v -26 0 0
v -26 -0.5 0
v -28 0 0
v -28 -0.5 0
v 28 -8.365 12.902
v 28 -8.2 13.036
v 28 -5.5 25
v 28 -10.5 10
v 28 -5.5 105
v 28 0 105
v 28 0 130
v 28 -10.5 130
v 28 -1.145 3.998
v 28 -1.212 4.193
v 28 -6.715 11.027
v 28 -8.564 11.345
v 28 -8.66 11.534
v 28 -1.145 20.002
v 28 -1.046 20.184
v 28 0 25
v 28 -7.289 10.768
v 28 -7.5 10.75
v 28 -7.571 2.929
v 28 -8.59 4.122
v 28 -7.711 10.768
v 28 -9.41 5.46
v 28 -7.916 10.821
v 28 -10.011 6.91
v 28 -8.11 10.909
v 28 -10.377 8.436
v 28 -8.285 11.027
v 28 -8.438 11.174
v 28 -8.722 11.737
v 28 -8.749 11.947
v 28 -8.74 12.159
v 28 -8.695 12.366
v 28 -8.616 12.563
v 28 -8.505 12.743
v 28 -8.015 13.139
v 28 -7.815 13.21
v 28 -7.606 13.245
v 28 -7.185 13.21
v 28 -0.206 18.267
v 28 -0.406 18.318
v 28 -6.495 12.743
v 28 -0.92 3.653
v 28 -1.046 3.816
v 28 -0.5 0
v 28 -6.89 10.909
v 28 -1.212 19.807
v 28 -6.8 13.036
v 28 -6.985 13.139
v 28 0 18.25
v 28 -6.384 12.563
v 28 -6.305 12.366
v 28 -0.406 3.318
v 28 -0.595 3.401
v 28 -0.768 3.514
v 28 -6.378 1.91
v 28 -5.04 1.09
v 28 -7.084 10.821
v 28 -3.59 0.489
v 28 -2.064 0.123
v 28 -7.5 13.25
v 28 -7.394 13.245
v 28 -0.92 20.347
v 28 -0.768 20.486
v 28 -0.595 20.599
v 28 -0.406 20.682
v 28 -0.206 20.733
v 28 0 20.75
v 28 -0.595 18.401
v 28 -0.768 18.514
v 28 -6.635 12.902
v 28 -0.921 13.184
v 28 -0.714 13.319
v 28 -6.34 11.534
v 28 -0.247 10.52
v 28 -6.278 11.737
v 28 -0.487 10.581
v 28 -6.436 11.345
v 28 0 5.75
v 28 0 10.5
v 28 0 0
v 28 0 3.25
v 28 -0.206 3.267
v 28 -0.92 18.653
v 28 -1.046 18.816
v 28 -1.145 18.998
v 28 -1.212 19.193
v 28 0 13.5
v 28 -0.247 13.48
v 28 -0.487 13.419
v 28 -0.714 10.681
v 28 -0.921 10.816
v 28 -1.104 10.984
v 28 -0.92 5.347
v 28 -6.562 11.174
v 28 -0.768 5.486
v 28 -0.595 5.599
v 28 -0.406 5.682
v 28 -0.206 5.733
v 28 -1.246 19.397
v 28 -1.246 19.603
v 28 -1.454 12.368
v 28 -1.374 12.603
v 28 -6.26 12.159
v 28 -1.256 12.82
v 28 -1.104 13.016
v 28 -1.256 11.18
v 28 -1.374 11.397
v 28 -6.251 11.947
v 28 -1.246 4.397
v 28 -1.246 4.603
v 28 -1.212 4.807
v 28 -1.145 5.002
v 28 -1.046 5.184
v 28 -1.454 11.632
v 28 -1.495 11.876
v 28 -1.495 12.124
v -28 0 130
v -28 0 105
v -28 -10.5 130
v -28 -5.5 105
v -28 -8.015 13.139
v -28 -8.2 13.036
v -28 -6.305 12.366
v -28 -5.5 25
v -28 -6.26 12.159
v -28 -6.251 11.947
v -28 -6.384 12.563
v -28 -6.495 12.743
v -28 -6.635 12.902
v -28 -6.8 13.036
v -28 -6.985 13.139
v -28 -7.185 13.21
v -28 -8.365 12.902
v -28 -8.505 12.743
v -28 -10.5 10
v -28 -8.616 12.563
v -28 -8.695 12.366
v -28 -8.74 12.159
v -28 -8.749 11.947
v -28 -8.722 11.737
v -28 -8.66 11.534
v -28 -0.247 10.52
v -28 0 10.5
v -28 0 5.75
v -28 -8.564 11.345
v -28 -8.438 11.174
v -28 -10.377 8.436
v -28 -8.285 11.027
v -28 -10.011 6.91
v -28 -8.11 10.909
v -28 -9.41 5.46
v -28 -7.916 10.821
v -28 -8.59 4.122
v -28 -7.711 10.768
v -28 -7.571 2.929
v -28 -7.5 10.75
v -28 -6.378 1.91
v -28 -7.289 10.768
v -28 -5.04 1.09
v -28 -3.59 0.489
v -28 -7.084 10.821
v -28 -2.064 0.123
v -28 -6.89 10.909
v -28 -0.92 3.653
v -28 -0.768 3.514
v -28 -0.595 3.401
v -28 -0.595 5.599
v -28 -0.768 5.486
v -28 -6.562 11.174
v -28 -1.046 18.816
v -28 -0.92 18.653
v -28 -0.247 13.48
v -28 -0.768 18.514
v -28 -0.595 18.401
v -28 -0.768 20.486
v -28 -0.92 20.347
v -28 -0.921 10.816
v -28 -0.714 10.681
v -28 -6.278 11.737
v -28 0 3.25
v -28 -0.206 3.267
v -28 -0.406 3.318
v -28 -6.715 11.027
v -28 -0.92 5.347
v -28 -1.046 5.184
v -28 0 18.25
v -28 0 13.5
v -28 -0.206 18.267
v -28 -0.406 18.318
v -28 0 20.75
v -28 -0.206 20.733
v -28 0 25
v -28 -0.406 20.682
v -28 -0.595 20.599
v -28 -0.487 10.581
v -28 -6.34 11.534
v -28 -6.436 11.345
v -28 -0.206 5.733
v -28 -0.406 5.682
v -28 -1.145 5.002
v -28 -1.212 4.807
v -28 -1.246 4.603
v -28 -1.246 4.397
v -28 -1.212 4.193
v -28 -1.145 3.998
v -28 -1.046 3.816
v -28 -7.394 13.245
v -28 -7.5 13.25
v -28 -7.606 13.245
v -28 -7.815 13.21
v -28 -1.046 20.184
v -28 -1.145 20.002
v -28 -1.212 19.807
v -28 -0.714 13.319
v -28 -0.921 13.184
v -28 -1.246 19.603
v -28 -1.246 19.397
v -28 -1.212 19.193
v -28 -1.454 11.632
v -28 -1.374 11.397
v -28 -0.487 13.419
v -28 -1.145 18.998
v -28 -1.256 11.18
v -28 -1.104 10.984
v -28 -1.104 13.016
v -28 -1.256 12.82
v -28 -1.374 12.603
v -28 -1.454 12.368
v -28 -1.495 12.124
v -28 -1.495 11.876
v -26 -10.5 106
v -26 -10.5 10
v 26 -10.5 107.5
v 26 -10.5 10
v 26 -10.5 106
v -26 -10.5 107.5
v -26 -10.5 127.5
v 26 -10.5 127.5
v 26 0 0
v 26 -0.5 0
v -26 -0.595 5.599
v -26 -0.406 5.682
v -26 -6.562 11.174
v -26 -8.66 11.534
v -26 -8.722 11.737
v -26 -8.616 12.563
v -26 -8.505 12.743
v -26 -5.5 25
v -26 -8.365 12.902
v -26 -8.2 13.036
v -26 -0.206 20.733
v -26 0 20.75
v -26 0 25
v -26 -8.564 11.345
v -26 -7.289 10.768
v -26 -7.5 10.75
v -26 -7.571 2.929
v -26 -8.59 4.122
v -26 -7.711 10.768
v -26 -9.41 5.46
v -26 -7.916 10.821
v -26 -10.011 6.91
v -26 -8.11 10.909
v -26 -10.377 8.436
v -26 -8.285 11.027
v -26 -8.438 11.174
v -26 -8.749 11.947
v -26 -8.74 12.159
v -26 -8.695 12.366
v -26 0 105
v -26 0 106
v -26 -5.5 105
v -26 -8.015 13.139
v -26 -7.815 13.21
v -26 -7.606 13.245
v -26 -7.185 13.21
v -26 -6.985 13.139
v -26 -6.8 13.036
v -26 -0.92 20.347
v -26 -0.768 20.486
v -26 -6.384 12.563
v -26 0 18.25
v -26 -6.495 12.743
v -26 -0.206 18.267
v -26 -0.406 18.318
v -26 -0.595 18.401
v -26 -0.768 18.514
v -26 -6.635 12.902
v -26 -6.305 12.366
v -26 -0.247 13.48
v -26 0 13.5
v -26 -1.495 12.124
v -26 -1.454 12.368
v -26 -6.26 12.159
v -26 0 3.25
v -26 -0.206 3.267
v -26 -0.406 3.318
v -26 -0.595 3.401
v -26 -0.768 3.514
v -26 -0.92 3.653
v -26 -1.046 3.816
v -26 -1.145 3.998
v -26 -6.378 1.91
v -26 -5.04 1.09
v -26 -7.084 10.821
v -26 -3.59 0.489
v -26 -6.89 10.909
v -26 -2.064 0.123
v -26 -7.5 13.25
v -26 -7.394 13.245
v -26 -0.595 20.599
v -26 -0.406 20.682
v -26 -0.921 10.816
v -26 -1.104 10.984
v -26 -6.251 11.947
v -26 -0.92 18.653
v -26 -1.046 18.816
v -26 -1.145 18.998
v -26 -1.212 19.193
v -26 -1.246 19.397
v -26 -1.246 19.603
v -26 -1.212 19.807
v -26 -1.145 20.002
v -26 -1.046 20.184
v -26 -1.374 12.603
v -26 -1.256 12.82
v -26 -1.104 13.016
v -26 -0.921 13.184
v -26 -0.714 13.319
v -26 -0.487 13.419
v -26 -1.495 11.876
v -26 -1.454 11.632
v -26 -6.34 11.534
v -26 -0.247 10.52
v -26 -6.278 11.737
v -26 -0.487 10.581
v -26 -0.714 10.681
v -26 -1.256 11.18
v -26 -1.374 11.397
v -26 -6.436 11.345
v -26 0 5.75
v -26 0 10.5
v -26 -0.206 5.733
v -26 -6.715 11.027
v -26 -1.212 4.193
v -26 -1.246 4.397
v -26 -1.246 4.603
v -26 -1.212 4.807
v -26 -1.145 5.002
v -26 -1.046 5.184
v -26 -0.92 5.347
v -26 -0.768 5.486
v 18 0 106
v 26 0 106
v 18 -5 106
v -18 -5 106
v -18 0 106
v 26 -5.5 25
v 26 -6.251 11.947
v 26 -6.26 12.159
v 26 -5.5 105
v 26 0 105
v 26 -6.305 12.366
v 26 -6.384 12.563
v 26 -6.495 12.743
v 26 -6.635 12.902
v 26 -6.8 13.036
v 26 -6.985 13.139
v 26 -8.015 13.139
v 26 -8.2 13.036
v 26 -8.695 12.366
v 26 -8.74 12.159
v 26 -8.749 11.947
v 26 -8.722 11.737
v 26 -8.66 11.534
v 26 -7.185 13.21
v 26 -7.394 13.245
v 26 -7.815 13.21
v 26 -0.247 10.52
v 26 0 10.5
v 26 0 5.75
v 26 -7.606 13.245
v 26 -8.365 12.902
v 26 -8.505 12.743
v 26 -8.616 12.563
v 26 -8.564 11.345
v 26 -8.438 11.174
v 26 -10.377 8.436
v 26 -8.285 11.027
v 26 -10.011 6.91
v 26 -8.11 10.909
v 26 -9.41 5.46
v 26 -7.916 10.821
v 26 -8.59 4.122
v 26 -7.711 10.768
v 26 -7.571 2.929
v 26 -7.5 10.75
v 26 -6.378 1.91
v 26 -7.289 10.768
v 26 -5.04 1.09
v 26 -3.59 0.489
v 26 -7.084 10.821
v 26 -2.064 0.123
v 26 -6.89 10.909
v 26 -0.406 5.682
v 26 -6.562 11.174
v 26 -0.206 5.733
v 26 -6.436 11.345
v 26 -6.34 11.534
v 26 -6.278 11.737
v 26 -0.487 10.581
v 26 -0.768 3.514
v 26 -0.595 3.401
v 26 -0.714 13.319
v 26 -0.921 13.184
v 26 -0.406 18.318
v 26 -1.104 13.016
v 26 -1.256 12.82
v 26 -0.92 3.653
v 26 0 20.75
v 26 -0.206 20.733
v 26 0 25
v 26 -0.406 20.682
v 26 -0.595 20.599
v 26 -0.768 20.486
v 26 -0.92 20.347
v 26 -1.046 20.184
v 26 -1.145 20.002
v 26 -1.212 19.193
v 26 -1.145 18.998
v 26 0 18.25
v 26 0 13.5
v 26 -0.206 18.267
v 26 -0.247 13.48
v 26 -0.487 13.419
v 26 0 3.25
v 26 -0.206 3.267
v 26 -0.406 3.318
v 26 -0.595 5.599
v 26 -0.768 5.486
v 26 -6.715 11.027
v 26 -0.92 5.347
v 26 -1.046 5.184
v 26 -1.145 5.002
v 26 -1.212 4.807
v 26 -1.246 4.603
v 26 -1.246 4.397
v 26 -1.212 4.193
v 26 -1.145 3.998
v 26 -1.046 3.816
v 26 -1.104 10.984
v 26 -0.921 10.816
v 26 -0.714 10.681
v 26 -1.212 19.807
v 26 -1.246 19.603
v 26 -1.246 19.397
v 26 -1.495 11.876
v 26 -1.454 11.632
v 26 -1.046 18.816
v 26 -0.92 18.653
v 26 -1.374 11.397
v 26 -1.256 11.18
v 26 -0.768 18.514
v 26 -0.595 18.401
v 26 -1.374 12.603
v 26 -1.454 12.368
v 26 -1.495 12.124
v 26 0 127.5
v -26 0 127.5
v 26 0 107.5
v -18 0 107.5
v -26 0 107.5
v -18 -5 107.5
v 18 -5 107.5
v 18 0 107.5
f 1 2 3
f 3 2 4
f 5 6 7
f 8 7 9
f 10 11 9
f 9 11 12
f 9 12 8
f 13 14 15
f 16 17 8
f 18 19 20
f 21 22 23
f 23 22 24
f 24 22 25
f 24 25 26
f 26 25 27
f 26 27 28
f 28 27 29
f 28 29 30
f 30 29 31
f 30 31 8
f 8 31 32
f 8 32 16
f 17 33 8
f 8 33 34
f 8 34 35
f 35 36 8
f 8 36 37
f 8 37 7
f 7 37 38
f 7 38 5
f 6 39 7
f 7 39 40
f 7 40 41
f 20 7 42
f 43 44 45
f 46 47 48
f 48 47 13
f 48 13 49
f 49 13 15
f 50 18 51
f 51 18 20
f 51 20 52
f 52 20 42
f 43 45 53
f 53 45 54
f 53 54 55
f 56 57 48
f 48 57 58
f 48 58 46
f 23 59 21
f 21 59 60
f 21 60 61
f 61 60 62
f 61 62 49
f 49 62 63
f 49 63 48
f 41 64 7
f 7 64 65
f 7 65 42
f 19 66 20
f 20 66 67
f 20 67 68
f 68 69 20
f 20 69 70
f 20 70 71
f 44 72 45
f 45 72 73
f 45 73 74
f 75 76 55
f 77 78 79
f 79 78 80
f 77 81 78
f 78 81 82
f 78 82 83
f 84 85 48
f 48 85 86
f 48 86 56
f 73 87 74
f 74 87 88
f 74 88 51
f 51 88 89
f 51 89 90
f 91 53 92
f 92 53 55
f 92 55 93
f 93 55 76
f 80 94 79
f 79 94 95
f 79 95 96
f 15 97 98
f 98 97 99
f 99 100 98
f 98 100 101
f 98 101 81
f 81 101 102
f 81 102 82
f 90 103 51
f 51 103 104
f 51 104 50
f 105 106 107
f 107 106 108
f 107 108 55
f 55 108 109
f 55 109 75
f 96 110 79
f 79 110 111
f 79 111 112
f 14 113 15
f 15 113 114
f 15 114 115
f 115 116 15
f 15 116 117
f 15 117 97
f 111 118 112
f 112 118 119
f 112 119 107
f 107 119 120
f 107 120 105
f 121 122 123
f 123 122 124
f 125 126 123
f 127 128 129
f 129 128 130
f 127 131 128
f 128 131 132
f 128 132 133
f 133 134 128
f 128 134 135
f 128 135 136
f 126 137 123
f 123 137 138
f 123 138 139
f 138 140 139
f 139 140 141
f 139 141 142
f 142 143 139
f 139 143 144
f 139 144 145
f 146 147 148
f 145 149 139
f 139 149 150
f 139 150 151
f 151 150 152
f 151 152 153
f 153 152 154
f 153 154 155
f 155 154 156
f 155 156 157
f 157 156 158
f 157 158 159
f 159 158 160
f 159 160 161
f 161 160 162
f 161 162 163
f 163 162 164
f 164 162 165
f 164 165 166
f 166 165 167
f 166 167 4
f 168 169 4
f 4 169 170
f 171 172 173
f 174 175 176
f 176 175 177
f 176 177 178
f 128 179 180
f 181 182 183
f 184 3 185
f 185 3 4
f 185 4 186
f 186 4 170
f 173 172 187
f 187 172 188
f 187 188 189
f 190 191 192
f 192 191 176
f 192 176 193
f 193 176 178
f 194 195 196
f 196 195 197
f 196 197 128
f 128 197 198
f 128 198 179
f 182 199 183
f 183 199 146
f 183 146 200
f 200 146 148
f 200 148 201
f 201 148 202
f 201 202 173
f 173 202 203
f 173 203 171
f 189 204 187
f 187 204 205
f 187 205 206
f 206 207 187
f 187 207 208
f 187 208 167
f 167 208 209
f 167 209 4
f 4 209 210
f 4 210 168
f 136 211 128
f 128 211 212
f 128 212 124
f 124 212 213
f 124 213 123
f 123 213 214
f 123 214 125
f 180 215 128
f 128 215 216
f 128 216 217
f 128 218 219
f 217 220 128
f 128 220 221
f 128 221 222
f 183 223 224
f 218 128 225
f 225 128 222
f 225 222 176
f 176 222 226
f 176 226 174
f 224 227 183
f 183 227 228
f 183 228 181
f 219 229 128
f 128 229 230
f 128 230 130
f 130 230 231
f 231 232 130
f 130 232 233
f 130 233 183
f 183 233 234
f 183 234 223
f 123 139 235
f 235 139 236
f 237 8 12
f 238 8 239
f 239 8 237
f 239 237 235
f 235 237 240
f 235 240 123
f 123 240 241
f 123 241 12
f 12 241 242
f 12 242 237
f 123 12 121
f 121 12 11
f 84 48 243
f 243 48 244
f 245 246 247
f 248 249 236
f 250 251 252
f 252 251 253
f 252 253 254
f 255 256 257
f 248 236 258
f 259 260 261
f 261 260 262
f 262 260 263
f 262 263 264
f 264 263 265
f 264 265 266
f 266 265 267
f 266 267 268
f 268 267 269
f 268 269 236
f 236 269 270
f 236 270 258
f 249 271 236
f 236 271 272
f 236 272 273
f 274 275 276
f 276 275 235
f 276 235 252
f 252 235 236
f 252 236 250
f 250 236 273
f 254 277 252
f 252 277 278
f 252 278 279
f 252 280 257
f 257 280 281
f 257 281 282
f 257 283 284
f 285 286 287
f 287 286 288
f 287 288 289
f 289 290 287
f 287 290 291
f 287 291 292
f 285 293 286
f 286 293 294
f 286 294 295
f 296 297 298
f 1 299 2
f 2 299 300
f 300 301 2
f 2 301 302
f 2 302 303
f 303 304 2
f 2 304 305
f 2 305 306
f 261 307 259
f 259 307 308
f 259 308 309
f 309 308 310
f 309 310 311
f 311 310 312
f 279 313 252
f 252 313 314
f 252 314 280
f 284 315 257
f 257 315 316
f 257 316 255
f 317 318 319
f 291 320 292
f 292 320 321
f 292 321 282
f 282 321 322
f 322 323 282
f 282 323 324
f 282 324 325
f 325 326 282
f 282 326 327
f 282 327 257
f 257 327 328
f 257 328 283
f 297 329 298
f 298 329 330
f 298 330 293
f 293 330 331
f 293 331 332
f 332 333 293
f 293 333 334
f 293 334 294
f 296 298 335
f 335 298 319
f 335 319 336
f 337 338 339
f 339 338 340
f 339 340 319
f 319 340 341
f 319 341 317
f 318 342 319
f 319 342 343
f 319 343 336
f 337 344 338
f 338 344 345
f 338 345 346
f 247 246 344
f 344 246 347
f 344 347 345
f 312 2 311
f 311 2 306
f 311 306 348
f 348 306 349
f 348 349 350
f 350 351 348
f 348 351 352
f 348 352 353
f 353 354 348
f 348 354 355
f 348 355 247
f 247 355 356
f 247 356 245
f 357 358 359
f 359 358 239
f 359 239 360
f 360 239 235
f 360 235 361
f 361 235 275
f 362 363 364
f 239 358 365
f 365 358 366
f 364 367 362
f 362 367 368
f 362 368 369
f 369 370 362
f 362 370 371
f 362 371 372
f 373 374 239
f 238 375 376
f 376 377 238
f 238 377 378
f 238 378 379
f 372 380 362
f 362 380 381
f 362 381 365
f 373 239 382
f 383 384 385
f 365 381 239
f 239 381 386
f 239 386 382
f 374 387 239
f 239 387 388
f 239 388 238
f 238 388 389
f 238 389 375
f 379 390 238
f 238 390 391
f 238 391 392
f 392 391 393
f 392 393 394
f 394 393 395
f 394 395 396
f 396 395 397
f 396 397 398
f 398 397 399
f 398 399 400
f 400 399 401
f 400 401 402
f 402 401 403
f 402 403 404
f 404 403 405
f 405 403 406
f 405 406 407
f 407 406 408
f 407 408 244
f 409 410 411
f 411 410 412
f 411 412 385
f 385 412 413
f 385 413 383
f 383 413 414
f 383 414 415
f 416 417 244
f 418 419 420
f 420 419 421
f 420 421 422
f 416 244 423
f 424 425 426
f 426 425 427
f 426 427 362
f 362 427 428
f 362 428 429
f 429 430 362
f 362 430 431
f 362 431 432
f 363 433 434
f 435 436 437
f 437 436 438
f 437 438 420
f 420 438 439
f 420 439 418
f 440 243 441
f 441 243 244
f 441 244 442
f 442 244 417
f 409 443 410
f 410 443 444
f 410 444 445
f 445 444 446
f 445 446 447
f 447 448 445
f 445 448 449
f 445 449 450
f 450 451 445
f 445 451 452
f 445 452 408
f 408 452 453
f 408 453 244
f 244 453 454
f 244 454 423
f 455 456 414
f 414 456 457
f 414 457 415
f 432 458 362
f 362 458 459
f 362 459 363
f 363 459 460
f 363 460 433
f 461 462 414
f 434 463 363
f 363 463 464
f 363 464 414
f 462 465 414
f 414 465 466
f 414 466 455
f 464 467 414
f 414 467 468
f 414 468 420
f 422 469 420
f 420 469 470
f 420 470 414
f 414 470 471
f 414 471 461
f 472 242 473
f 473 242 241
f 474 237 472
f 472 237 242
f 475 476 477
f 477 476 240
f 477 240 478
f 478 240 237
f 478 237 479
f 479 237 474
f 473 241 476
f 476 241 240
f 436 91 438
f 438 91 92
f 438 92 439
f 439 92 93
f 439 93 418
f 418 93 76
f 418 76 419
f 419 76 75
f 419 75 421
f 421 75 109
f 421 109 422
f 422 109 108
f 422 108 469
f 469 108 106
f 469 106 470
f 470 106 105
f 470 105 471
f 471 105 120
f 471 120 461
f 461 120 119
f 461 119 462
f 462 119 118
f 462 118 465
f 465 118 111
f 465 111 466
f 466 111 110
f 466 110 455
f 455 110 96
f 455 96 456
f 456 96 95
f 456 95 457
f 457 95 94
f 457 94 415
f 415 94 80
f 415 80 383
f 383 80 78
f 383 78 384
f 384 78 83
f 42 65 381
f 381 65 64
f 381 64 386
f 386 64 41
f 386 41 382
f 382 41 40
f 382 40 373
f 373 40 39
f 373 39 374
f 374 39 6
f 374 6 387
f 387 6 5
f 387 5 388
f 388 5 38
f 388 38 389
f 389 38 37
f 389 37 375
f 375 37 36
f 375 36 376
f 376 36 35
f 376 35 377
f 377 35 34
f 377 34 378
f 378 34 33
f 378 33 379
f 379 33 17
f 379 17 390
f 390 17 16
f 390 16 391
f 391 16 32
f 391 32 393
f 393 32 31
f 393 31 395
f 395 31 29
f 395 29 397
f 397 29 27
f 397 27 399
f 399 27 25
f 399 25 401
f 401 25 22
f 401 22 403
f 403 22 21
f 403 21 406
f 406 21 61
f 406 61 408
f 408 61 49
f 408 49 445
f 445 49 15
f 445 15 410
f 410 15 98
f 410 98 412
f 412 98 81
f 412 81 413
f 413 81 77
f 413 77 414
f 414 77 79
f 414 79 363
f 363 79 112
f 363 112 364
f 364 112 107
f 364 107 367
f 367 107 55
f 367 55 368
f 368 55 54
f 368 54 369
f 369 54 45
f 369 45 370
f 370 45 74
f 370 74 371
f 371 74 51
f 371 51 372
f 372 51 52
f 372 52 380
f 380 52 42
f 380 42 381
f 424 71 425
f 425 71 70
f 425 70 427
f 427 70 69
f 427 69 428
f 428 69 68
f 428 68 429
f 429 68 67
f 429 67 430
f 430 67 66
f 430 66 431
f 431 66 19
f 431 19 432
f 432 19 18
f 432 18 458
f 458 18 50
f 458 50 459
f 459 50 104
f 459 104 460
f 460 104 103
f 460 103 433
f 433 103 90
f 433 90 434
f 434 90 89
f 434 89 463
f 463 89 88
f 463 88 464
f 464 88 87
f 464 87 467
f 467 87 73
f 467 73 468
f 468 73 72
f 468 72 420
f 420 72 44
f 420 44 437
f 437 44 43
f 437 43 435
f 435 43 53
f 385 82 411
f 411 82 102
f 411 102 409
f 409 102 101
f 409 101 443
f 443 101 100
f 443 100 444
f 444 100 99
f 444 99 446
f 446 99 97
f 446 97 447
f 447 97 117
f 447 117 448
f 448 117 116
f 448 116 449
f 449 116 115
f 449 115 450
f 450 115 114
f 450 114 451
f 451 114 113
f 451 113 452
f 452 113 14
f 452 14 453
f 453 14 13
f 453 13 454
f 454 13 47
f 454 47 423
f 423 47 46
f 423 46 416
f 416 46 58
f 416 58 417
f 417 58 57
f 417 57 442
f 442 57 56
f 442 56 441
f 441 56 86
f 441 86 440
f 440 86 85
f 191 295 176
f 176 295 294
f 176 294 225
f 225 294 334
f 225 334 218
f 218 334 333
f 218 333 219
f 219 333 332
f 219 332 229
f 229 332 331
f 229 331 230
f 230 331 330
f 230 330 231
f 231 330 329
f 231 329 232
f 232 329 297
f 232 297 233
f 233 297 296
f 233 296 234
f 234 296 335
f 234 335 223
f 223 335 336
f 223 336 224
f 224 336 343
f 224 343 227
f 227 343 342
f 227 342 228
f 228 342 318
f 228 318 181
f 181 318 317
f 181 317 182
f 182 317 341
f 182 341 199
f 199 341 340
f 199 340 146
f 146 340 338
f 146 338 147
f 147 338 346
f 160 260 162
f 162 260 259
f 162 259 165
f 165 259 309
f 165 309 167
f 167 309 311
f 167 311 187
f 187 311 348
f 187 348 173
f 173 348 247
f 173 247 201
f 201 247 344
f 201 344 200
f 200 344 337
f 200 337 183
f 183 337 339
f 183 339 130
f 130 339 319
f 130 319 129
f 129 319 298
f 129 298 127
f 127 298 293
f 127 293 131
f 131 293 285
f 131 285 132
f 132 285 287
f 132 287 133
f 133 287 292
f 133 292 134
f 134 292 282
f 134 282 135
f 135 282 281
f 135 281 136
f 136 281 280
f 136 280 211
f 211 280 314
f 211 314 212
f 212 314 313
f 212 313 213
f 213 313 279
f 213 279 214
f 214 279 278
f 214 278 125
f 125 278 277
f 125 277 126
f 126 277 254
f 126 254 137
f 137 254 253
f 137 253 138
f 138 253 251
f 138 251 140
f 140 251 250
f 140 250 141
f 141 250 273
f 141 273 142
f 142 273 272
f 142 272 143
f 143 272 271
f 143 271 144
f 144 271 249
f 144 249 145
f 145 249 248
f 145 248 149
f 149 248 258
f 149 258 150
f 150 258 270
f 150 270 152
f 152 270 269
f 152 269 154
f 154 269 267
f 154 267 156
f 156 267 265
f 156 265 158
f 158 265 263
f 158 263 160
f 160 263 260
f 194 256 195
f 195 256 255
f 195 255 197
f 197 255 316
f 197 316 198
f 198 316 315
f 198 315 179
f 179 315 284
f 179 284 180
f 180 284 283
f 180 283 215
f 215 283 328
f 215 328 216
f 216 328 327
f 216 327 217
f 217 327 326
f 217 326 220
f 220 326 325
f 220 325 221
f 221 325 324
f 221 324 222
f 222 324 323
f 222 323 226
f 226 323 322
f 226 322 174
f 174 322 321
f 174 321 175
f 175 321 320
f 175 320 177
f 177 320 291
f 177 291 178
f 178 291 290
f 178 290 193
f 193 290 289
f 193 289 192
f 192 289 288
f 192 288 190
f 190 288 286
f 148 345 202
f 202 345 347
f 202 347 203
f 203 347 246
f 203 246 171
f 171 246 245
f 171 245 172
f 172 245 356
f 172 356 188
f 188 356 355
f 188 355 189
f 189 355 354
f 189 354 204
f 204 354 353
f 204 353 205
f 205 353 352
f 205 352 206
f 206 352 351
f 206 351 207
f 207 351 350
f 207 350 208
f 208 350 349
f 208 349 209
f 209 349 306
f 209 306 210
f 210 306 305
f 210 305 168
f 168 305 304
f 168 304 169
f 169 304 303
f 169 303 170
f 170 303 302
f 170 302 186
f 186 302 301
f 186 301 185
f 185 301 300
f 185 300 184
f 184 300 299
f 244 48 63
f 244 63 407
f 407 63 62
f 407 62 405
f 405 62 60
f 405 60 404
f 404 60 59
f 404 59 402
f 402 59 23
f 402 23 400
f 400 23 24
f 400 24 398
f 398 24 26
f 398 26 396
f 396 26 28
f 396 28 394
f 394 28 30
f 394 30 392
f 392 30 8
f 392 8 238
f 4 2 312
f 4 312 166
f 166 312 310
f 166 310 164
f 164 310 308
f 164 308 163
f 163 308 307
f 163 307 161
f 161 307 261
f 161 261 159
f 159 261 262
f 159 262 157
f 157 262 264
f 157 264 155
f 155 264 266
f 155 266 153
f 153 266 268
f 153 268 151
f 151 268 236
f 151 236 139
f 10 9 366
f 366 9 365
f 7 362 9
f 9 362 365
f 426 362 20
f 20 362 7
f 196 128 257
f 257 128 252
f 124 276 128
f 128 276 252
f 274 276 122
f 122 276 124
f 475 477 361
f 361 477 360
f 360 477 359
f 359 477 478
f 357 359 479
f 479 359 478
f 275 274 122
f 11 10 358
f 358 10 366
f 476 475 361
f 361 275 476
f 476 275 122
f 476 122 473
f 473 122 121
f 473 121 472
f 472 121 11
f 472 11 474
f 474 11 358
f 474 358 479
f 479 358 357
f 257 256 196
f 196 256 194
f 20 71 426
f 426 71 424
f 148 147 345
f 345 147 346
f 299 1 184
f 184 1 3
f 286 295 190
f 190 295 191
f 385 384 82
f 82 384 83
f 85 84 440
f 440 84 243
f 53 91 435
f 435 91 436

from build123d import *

# Parameters (mm, degrees)
SKETCH3_W           = 56
SKETCH3_H           = 21
BOSS_EXTRUDE1_DEPTH = 130
SKETCH4_W           = 52
SKETCH4_H           = 106
SKETCH4_H_2         = 20
CUT_EXTRUDE3_DEPTH  = 22
SKETCH6_R           = 1.5
SKETCH6_R_2         = 1.25
CUT_EXTRUDE4_DEPTH  = 57
FILLET1_R           = 10
SKETCH7_W           = 80
SKETCH7_H           = 10
CUT_EXTRUDE5_DEPTH  = 57
SKETCH8_W           = 36
SKETCH8_H           = 10
CUT_EXTRUDE6_DEPTH  = 2
CUT_EXTRUDE7_DEPTH  = 57


with BuildPart() as part:
    # Sketch3 → Boss-Extrude1 (new body)
    with BuildSketch(Plane.XY):
        Rectangle(SKETCH3_W, SKETCH3_H)
    extrude(amount=BOSS_EXTRUDE1_DEPTH)

    # Sketch4 → Cut-Extrude3 (cut, through all)
    with BuildSketch(Plane.XZ.offset(10.5)):
        with Locations((0, 53)):
            Rectangle(SKETCH4_W, SKETCH4_H)
        with Locations((0, 117.5)):
            Rectangle(SKETCH4_W, SKETCH4_H_2)
    extrude(amount=-CUT_EXTRUDE3_DEPTH, mode=Mode.SUBTRACT)

    # Sketch6 → Cut-Extrude4 (cut, through all)
    with BuildSketch(Plane(origin=(28, 0, 0), x_dir=(0, 0, -1), z_dir=(1, 0, 0))):
        with Locations((-12, 0)):
            Circle(SKETCH6_R)
        with Locations((-4.5, 0)):
            Circle(SKETCH6_R_2)
        with Locations((-19.5, 0)):
            Circle(SKETCH6_R_2)
        with Locations((-12, 7.5)):
            Circle(SKETCH6_R_2)
        with Locations((-12, -7.5)):
            Circle(SKETCH6_R_2)
    extrude(amount=-CUT_EXTRUDE4_DEPTH, mode=Mode.SUBTRACT)

    # Fillet1
    fillet1_edges = [part.edges().sort_by_distance(p)[0] for p in [
        (27, -10.5, 0),
        (-27, 10.5, 0),
        (-27, -10.5, 0),
        (27, 10.5, 0),
    ]]
    fillet(fillet1_edges, radius=FILLET1_R)

    # Sketch7 → Cut-Extrude5 (cut, through all)
    with BuildSketch(Plane(origin=(28, 0, 0), x_dir=(0, 0, -1), z_dir=(1, 0, 0))):
        with Locations((-65, -0.5)):
            Rectangle(SKETCH7_W, SKETCH7_H)
    extrude(amount=-CUT_EXTRUDE5_DEPTH, mode=Mode.SUBTRACT)

    # Sketch8 → Cut-Extrude6 (cut)
    with BuildSketch(Plane(origin=(0, 0, 106), x_dir=(-1, 0, 0), z_dir=(0, 0, -1))):
        Rectangle(SKETCH8_W, SKETCH8_H)
    extrude(amount=-CUT_EXTRUDE6_DEPTH, mode=Mode.SUBTRACT)

    # Sketch9 → Cut-Extrude7 (cut, through all)
    with BuildSketch(Plane(origin=(28, 0, 0), x_dir=(0, 0, -1), z_dir=(1, 0, 0))):
        Polygon((8.328518313, 0), (-140.648225394, 0), (-140.648225394, 18.171038809), (9.8749897, 18.171038809), (9.8749897, 0), align=None)
    extrude(amount=-CUT_EXTRUDE7_DEPTH, mode=Mode.SUBTRACT)


solid = part.part
